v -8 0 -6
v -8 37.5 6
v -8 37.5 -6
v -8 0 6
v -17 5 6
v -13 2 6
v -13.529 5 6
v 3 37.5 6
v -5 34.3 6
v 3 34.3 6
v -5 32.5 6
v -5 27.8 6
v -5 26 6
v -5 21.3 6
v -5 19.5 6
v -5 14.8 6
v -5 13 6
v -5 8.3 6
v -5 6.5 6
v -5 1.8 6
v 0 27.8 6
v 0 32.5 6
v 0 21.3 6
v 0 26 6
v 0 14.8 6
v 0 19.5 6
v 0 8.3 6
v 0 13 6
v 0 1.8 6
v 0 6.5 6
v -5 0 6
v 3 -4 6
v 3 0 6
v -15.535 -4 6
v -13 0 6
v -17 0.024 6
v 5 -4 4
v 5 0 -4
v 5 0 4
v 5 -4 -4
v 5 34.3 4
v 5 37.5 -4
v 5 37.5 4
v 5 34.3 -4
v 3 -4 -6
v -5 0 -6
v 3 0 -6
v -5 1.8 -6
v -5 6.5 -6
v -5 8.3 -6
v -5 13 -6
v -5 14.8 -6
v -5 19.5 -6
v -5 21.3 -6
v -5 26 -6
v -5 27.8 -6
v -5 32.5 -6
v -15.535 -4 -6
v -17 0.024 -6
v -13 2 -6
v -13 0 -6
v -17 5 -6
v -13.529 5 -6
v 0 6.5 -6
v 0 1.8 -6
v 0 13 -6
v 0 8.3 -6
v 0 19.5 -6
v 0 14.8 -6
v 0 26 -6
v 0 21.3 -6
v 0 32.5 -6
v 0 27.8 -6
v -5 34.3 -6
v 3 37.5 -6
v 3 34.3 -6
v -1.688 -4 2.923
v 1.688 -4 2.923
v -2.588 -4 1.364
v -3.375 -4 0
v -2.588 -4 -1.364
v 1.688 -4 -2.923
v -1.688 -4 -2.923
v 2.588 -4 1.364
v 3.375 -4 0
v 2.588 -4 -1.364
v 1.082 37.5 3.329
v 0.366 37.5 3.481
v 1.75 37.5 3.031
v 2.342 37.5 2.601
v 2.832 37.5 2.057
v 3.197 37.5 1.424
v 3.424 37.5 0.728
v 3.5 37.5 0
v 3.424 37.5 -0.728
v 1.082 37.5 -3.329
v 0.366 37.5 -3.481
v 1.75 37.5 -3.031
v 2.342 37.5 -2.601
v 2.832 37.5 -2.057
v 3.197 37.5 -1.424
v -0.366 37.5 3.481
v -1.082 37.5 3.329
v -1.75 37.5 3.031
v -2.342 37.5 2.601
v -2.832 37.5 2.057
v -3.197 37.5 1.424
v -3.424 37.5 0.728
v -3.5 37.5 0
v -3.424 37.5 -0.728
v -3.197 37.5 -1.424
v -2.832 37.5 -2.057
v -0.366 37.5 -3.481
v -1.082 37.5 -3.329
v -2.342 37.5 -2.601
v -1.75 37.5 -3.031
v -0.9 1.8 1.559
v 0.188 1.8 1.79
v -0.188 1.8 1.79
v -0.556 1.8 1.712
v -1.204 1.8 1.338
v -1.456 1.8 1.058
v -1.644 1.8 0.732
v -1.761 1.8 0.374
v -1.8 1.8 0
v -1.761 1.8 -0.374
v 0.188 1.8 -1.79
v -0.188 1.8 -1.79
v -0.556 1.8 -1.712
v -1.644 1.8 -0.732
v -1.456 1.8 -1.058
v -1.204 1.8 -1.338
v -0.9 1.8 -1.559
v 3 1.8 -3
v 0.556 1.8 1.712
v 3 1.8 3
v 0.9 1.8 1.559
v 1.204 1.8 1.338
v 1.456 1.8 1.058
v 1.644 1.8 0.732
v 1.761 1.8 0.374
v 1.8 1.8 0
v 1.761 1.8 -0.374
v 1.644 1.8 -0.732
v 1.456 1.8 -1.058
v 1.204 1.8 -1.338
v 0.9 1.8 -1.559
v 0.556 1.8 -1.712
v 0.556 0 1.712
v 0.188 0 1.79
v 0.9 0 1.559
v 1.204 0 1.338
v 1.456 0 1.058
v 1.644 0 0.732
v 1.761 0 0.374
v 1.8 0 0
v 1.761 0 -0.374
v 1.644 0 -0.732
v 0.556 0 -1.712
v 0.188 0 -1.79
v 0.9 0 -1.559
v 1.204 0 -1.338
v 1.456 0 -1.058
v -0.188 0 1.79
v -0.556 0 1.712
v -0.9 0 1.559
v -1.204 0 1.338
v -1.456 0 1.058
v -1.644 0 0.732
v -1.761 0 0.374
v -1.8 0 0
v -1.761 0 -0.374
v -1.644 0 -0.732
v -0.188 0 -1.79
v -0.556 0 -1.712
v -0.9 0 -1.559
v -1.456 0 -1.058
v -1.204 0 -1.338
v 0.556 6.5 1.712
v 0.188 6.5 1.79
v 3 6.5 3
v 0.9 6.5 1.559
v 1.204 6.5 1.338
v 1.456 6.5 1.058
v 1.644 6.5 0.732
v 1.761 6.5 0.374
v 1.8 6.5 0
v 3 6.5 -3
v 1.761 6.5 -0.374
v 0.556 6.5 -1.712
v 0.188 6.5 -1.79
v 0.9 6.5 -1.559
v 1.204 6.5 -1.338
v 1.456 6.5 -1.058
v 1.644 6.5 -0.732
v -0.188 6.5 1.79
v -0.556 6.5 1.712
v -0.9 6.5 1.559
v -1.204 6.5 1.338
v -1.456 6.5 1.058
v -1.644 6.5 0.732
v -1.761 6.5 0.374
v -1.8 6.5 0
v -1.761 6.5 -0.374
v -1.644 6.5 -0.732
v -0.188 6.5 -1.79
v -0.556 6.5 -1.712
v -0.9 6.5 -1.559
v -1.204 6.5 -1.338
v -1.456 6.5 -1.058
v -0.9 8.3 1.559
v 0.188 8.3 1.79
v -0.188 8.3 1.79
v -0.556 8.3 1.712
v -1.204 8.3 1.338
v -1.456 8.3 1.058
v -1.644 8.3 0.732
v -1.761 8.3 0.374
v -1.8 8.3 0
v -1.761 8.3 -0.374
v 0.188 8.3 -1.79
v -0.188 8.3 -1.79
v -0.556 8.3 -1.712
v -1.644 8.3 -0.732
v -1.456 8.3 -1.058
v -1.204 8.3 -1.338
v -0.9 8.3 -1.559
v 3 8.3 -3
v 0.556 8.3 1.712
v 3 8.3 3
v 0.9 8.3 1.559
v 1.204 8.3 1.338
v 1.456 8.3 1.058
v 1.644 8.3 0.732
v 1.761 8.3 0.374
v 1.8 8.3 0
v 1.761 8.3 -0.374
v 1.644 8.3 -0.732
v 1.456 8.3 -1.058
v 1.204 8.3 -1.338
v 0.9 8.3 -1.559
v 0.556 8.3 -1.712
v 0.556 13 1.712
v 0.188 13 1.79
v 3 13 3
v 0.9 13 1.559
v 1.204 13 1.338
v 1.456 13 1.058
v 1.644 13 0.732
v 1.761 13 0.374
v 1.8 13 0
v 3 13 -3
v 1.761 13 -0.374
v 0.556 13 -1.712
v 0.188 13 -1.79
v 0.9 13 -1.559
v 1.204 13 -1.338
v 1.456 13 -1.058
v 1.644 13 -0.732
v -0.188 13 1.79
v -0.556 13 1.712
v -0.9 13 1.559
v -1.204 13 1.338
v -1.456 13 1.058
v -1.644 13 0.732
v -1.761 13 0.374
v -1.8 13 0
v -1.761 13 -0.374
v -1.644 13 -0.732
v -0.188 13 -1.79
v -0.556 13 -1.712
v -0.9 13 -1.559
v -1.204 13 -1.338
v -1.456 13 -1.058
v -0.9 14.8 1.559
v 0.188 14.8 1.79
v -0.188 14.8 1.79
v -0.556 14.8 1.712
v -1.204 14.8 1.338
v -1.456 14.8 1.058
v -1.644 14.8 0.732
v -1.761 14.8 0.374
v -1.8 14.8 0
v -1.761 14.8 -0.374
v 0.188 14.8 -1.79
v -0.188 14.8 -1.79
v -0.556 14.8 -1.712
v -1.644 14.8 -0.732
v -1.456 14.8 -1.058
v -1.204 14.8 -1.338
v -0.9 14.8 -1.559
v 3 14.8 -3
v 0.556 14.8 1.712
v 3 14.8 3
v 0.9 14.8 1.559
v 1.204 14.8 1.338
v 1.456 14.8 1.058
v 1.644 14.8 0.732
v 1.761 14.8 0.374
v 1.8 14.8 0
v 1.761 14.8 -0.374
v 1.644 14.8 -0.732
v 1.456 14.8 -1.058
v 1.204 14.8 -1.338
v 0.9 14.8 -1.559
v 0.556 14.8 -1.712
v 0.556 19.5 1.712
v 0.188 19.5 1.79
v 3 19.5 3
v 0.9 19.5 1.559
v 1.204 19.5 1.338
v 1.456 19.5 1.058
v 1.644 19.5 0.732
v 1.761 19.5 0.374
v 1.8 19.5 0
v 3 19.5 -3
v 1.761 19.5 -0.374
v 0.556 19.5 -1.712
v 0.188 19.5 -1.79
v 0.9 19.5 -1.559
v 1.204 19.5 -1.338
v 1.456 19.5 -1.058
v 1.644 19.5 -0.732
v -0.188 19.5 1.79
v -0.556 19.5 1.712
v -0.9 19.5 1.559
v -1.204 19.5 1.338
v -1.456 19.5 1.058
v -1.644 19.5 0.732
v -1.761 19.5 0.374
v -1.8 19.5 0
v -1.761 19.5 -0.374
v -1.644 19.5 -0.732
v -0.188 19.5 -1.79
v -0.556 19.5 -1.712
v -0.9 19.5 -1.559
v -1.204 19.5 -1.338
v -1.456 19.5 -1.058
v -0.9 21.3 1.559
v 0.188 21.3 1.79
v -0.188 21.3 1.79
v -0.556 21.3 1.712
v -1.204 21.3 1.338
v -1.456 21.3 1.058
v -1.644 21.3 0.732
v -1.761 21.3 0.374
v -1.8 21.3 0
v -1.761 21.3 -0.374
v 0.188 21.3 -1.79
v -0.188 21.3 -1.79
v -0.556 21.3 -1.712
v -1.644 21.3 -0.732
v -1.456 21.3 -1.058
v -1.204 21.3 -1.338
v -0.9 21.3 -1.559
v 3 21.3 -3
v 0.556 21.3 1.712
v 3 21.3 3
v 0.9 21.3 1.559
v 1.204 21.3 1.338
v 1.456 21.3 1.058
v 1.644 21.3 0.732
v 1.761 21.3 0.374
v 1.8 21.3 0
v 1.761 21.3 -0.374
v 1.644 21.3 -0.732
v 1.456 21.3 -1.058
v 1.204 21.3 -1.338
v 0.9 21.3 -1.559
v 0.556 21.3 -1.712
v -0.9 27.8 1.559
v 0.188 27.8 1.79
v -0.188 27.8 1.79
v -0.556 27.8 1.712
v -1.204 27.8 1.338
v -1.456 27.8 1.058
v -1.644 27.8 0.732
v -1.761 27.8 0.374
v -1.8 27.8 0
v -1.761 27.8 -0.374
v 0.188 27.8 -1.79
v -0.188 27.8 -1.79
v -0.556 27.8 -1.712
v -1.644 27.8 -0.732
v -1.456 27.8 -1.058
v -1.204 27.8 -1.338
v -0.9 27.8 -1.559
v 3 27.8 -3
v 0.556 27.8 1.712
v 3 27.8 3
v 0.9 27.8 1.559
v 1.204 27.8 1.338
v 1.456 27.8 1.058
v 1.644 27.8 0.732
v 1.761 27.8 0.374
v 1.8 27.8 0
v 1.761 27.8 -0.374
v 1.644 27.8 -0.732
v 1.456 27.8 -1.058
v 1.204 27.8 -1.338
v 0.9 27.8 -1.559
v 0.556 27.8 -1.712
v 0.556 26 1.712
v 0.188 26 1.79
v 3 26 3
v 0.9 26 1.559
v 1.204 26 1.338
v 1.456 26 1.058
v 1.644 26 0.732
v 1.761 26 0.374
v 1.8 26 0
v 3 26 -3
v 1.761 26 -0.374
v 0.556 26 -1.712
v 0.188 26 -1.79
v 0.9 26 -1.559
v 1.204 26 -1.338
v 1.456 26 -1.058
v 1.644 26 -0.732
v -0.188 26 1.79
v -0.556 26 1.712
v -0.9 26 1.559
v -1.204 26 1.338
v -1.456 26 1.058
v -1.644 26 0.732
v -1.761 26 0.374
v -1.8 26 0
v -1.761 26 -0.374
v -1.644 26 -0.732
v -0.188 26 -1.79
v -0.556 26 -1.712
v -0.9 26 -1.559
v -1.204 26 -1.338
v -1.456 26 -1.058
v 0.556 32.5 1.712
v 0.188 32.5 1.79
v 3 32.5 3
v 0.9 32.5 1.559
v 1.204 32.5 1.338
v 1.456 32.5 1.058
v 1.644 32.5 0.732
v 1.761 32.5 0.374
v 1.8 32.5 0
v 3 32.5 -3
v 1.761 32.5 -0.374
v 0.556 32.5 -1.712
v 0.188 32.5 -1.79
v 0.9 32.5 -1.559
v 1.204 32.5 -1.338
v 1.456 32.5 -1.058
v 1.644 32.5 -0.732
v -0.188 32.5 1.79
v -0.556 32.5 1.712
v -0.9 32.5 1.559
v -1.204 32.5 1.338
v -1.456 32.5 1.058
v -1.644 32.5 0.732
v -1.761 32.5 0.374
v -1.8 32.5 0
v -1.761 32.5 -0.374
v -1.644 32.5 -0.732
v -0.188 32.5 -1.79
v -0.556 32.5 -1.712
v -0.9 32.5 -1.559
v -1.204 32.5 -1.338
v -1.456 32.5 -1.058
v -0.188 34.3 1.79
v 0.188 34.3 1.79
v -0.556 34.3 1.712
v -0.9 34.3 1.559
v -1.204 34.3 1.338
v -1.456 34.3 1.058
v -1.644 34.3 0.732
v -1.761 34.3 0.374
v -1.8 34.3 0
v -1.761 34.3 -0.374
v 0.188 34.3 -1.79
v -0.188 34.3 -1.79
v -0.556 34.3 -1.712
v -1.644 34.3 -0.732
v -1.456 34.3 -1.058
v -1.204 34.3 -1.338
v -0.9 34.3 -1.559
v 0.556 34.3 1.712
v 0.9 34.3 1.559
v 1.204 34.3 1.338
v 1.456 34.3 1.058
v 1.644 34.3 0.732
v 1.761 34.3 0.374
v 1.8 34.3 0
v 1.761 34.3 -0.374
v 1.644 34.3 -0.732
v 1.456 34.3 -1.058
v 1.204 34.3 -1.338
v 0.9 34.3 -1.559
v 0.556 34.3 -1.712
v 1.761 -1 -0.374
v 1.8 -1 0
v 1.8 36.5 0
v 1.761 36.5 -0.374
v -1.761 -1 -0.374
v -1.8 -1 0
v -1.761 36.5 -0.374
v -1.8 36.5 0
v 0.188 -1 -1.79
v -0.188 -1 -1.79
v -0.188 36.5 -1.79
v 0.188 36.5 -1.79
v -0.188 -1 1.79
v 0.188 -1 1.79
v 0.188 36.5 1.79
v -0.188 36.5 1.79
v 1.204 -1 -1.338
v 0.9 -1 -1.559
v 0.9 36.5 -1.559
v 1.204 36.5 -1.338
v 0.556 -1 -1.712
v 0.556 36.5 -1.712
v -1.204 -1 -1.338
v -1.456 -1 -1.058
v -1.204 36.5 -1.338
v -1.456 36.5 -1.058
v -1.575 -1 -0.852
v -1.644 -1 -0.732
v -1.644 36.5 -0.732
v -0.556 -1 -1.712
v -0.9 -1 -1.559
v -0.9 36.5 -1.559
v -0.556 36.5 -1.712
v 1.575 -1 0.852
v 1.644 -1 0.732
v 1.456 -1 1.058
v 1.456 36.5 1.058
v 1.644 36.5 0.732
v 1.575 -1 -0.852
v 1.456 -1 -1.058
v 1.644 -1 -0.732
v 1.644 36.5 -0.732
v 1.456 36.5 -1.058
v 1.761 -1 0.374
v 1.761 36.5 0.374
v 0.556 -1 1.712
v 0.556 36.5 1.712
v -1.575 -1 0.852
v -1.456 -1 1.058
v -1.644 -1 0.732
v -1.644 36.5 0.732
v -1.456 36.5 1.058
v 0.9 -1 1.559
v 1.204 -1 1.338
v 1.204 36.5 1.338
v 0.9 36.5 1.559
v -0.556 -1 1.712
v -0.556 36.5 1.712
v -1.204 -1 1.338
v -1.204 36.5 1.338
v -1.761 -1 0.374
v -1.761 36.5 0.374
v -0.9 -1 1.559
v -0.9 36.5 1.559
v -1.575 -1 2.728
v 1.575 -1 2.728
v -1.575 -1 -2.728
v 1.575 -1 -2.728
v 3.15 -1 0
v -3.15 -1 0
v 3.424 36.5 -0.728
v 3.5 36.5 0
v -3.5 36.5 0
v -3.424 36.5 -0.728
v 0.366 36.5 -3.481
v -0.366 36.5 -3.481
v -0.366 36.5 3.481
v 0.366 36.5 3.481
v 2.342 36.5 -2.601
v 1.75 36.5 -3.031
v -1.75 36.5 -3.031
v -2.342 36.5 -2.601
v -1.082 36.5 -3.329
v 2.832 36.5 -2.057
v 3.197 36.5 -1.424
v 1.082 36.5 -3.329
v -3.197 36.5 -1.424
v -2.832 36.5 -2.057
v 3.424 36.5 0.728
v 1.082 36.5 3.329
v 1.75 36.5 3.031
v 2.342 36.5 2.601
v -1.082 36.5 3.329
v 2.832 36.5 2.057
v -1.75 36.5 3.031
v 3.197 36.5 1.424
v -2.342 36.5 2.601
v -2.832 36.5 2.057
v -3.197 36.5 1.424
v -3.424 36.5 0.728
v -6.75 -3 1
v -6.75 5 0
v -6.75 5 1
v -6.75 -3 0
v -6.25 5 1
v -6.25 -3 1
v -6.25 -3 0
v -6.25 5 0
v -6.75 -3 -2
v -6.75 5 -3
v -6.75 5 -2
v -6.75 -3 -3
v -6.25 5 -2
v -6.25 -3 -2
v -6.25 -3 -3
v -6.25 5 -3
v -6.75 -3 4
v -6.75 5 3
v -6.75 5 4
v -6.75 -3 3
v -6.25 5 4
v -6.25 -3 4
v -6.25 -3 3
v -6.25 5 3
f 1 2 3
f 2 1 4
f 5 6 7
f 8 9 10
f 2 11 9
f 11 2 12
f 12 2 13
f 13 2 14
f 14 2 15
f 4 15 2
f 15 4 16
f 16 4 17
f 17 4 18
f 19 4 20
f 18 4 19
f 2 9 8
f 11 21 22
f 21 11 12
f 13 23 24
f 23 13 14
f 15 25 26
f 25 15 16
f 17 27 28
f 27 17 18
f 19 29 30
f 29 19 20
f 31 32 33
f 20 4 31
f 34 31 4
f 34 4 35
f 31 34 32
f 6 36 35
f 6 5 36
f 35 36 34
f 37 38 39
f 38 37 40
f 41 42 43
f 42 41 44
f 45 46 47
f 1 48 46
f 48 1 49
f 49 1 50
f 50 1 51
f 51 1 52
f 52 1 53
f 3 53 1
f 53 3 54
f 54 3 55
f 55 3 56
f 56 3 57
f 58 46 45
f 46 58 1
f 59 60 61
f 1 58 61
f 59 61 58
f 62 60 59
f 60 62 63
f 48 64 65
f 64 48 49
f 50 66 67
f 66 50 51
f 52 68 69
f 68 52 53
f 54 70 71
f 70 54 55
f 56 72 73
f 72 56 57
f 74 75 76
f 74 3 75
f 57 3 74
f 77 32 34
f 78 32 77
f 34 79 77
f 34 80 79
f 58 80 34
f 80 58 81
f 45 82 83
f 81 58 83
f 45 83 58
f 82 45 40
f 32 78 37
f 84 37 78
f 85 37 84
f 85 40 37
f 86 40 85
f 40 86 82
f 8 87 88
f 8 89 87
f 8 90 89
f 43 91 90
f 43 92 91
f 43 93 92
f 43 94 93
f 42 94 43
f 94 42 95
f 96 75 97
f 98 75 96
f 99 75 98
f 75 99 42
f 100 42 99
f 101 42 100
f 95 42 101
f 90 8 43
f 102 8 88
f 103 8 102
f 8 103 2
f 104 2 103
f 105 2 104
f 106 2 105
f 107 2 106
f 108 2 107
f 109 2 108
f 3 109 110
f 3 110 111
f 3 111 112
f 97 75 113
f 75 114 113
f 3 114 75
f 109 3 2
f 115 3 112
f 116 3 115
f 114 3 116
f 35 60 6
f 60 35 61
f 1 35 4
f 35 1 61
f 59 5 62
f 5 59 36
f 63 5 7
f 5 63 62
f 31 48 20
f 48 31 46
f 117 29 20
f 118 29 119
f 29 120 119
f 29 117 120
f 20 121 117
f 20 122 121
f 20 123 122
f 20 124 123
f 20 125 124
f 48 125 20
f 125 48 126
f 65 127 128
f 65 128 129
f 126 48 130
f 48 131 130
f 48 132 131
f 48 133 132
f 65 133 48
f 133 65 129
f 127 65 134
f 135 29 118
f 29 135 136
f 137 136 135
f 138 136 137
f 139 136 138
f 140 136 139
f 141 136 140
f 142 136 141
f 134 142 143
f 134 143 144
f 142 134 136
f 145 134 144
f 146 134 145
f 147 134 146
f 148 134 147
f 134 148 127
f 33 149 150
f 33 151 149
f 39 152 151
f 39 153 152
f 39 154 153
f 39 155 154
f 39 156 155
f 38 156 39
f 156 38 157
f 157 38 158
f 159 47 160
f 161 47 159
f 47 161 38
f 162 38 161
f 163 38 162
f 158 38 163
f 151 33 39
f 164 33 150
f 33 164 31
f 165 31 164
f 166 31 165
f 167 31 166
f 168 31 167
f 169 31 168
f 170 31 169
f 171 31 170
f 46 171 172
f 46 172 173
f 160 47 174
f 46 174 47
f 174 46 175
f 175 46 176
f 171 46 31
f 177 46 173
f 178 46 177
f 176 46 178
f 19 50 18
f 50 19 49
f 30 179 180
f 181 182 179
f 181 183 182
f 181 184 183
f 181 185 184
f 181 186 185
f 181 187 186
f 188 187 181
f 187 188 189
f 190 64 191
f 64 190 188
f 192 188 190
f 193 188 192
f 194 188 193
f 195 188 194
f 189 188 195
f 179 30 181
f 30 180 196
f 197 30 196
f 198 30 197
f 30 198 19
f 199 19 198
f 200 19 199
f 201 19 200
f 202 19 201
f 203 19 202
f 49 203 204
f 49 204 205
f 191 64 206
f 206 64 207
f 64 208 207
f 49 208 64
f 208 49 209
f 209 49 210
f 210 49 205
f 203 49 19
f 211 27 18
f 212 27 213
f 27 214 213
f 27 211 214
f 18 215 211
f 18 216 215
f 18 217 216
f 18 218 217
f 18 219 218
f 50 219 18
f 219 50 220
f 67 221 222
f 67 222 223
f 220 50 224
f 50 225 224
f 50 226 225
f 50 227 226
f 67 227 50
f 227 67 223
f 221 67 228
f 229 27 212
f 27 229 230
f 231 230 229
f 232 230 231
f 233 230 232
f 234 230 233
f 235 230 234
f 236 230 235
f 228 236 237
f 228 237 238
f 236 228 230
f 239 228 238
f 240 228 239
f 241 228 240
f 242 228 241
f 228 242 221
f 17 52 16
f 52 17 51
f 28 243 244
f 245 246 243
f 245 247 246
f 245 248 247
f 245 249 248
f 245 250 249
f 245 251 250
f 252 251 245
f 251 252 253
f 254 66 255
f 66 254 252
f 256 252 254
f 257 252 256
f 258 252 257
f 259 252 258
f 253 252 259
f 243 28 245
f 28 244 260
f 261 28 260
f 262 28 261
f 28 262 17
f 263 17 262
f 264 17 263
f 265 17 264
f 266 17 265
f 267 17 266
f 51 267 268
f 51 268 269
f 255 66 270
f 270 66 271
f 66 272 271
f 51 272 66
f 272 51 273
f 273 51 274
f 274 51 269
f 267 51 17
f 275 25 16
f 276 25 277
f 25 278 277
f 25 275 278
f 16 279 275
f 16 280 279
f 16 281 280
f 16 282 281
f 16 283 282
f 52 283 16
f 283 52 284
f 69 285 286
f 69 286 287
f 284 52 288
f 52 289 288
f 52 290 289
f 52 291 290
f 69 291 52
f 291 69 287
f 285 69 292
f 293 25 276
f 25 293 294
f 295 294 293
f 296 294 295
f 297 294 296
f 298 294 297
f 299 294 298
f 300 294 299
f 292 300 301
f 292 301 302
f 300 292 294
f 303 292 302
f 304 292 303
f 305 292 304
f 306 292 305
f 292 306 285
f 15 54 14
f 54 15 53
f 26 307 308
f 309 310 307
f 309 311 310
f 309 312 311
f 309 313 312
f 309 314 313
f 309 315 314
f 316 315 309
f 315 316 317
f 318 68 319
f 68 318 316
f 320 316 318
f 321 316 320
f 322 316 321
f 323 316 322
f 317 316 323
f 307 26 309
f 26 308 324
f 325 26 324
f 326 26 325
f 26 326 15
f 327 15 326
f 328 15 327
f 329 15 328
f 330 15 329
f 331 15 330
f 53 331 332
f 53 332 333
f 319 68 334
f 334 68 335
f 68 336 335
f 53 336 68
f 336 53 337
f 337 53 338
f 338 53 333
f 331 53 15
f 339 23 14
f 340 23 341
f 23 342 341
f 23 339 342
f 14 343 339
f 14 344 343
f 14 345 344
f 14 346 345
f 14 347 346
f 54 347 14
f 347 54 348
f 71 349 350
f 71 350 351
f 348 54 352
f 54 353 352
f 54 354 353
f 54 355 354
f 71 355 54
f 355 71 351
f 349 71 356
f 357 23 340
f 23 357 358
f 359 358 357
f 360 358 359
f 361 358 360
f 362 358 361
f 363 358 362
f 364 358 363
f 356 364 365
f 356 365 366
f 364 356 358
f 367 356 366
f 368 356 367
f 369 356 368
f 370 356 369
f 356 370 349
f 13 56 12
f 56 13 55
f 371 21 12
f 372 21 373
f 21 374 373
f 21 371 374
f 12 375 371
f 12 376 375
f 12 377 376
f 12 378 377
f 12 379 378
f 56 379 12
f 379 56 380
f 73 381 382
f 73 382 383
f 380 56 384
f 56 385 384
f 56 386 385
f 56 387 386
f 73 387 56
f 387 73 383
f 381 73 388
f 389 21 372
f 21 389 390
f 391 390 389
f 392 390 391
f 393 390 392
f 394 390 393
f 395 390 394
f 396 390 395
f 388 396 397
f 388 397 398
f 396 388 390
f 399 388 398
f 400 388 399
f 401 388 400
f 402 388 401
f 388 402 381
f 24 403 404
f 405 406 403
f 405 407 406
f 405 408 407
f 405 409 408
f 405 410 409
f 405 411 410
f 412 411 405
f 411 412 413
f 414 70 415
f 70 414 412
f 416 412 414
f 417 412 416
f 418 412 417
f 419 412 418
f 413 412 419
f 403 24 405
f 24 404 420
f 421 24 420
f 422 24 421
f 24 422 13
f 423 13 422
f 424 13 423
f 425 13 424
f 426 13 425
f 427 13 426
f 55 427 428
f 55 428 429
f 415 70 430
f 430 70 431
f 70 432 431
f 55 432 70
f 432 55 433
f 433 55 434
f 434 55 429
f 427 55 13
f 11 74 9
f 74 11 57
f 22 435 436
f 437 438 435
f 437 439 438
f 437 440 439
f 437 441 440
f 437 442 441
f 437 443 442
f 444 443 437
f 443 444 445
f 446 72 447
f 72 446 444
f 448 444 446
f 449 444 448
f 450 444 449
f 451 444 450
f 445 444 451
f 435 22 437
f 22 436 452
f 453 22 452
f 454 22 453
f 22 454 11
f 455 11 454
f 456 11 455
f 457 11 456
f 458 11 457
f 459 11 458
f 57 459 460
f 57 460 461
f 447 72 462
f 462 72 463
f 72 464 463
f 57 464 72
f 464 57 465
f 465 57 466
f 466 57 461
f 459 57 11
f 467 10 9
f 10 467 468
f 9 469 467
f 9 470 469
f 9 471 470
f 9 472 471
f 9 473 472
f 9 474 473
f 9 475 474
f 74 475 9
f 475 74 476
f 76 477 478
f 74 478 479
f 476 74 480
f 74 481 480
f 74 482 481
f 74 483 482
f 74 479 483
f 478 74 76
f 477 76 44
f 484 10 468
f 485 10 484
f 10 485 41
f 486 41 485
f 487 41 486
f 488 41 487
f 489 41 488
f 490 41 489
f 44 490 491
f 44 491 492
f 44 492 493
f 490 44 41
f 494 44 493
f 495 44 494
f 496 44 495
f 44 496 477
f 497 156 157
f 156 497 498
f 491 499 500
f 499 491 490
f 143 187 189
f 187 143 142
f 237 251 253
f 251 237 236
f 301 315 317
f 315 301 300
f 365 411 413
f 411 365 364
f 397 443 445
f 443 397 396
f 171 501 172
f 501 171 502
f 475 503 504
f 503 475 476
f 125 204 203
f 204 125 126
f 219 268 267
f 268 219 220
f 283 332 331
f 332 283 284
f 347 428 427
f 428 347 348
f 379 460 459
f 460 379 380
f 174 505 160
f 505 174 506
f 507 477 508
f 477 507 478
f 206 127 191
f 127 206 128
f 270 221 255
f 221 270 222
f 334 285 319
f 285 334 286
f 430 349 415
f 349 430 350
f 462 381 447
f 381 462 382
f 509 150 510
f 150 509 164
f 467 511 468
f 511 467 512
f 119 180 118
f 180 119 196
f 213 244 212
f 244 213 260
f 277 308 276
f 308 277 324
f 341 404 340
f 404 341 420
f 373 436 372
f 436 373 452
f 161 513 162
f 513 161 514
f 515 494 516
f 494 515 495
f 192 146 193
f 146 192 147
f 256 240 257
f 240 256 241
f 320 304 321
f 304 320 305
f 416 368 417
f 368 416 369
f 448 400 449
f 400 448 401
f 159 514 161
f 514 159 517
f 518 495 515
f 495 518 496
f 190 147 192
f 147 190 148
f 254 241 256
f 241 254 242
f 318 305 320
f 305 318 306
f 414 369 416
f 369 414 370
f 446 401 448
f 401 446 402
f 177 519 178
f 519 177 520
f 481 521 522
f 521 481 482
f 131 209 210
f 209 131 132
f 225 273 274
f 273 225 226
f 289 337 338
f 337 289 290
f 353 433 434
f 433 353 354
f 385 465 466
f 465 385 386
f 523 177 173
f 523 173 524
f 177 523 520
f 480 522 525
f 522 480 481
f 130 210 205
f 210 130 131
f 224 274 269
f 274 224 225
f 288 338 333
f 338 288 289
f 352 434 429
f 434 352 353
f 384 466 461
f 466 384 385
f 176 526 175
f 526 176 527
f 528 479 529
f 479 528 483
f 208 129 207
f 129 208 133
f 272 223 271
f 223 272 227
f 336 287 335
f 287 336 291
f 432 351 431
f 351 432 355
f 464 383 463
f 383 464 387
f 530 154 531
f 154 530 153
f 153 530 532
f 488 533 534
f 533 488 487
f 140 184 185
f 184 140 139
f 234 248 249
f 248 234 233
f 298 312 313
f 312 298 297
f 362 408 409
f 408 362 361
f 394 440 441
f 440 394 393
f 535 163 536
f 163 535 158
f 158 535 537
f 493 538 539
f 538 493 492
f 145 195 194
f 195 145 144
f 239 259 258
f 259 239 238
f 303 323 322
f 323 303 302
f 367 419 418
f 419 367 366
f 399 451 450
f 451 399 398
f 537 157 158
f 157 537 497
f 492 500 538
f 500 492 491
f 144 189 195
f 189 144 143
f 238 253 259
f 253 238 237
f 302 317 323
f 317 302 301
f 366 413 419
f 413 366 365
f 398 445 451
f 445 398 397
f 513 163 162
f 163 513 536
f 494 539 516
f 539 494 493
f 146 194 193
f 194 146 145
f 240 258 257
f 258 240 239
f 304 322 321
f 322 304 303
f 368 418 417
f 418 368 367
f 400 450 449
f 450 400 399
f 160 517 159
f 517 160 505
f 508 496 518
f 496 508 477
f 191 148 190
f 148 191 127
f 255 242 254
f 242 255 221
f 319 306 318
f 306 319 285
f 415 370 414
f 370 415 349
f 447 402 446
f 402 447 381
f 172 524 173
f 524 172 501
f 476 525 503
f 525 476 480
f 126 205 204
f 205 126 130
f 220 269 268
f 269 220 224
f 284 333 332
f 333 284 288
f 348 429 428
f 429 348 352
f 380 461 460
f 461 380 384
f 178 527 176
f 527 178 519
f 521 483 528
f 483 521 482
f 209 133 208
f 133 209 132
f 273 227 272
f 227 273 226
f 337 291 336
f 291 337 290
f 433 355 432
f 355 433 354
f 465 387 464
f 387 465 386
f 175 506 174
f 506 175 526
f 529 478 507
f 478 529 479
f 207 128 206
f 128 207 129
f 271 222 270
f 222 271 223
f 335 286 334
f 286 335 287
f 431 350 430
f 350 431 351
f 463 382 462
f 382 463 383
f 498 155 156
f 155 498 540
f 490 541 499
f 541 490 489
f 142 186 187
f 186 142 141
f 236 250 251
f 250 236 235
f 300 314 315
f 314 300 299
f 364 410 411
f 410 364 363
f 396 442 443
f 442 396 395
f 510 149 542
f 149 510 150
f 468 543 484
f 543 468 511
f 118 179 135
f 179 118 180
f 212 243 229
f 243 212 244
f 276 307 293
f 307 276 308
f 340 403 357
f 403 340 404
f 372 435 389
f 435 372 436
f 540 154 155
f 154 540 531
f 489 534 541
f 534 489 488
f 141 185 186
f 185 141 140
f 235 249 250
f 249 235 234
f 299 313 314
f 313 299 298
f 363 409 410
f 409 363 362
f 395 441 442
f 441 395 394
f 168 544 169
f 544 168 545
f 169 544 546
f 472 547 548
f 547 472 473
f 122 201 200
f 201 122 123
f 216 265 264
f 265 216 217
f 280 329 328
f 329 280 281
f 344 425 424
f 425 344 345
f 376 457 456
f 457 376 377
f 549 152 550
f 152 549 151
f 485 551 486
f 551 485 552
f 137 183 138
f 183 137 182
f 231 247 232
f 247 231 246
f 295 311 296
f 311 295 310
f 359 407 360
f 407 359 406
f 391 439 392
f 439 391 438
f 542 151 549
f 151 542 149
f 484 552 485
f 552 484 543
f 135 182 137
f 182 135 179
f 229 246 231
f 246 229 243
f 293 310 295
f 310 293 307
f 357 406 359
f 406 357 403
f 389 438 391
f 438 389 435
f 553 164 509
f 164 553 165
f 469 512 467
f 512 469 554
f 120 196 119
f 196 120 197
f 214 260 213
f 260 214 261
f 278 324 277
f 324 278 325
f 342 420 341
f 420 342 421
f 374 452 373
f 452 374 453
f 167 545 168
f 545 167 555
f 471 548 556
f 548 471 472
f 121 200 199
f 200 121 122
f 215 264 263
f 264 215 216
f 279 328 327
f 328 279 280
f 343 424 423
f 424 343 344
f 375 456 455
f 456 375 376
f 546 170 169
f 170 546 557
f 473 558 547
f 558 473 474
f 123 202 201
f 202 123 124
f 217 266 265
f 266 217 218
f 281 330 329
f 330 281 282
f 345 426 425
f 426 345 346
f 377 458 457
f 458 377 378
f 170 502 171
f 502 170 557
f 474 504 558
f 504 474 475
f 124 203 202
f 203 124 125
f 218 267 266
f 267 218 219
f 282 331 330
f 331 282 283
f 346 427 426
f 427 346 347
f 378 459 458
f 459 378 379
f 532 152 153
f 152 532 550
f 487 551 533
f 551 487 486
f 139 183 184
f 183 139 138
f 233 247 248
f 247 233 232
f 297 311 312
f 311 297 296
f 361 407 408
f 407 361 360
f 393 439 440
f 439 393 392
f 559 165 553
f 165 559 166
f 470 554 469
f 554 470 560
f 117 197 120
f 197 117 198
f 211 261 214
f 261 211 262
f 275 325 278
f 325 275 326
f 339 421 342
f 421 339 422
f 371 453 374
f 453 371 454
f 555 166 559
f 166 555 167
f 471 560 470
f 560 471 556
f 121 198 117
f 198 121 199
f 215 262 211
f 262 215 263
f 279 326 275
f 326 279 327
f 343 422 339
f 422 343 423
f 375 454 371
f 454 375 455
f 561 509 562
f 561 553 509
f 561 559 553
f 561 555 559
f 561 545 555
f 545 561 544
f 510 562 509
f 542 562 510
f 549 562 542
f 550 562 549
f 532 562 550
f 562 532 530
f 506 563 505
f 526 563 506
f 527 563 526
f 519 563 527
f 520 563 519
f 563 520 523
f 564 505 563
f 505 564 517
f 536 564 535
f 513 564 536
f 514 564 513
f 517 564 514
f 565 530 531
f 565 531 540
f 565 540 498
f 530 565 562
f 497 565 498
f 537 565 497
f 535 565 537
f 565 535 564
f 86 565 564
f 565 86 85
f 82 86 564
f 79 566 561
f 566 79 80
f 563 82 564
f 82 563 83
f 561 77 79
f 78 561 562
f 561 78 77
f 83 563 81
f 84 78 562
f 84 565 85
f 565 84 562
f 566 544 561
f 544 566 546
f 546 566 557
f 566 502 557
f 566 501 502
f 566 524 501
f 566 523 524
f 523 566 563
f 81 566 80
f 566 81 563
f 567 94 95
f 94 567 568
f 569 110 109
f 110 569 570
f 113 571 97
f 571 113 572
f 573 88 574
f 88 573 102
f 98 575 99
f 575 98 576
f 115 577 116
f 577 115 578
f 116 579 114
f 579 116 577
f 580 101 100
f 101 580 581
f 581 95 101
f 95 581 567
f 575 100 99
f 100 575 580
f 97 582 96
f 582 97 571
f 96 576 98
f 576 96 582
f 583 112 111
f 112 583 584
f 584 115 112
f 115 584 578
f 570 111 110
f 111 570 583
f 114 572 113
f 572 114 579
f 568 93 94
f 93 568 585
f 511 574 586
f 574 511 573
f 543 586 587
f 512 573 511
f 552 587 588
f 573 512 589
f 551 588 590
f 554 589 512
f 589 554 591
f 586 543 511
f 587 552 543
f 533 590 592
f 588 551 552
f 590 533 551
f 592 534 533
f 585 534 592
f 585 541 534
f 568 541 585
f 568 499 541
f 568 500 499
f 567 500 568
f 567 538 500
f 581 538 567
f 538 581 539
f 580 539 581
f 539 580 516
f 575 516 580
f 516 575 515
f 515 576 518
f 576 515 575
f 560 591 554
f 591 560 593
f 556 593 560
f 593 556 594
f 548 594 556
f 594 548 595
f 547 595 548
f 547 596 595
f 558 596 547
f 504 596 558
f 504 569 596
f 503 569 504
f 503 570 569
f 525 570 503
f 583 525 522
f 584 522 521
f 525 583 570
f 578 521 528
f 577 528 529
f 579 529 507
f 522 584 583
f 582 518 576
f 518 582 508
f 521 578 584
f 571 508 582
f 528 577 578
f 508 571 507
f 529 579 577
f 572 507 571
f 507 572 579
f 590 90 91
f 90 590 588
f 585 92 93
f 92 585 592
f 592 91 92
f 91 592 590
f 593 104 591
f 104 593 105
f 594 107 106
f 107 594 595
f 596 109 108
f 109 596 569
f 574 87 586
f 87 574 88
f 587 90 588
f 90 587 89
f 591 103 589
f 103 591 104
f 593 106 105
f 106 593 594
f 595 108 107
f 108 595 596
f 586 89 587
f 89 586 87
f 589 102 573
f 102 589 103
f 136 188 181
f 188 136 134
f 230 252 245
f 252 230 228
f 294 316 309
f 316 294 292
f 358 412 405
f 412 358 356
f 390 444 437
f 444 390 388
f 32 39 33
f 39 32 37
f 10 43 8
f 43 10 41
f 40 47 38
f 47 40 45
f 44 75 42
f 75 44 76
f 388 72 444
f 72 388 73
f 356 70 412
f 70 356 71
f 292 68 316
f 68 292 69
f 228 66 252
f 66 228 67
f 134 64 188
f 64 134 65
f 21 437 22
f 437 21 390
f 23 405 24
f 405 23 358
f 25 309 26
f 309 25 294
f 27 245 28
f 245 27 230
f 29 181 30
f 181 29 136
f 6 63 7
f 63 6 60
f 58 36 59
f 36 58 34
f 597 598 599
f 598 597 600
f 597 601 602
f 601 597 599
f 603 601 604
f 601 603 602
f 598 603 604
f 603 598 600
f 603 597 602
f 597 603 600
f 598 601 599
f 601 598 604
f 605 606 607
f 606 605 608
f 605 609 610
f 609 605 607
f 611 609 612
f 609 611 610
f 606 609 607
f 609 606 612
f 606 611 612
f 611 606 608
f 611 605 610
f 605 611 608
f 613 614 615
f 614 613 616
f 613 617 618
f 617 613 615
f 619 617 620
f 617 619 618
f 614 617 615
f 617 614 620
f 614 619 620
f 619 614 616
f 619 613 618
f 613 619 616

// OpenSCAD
// PRUSA iteration4
// spool-buffer-spacer-hook
// GNU GPL v3
// Josef Průša <iam@josefprusa.cz> and contributors
// http://www.reprap.org/wiki/Prusa_Mendel
// http://prusamendel.org

module buffer_spacer_hook()
{
    difference()
    {
        union()
        {
            // base block
            translate([-8,-4,-6]) cube([13,41.5,12]);
            
            // hook
            translate([-13,-4,-6]) cube([14,4,12]);
            translate([-17,-4,-6]) cube([4,9,12]);
            
            
        }
        
        // hold together screw
        translate([0,-3.4,0]) rotate([-90,0,0]) cylinder(r=1.8, h=40, $fn=30);
        translate([0,-7,0]) rotate([-90,0,0]) cylinder(r1=3.6, r2=3.15, h=6, $fn=6);
        translate([0,36.5,0]) rotate([-90,0,0]) cylinder(r=3.5, h=6, $fn=30);
        
        // plates
        for(i = [0 : 5])
        {
            translate([-5,6.5*i,-10]) cube([50,1.8,20]); 
        }
        
        // cut
        translate([3,1,-10]) cube([20,33,20]); 
        
        // edges
        translate([2,-5,7]) rotate([0,45,0]) cube([20,70,20]); 
        translate([2,-5,-7]) rotate([0,45,0]) cube([20,70,20]); 
        translate([-2,1,-8]) rotate([0,45,0]) cube([20,32,20]); 
        translate([-2,1,8]) rotate([0,45,0]) cube([20,32,20]); 
        
        // hook edges
        translate([-13,2,-7]) rotate([0,0,10]) cube([2,13,14]); 
        translate([-18,-6,-7]) rotate([0,0,20]) cube([3,13,14]); 
        
        // selective infill
        translate([-6.75,-3,0]) cube([0.5,8,1]); 
        translate([-6.75,-3,-3]) cube([0.5,8,1]); 
        translate([-6.75,-3,3]) cube([0.5,8,1]); 
        
    }
}


buffer_spacer_hook();
